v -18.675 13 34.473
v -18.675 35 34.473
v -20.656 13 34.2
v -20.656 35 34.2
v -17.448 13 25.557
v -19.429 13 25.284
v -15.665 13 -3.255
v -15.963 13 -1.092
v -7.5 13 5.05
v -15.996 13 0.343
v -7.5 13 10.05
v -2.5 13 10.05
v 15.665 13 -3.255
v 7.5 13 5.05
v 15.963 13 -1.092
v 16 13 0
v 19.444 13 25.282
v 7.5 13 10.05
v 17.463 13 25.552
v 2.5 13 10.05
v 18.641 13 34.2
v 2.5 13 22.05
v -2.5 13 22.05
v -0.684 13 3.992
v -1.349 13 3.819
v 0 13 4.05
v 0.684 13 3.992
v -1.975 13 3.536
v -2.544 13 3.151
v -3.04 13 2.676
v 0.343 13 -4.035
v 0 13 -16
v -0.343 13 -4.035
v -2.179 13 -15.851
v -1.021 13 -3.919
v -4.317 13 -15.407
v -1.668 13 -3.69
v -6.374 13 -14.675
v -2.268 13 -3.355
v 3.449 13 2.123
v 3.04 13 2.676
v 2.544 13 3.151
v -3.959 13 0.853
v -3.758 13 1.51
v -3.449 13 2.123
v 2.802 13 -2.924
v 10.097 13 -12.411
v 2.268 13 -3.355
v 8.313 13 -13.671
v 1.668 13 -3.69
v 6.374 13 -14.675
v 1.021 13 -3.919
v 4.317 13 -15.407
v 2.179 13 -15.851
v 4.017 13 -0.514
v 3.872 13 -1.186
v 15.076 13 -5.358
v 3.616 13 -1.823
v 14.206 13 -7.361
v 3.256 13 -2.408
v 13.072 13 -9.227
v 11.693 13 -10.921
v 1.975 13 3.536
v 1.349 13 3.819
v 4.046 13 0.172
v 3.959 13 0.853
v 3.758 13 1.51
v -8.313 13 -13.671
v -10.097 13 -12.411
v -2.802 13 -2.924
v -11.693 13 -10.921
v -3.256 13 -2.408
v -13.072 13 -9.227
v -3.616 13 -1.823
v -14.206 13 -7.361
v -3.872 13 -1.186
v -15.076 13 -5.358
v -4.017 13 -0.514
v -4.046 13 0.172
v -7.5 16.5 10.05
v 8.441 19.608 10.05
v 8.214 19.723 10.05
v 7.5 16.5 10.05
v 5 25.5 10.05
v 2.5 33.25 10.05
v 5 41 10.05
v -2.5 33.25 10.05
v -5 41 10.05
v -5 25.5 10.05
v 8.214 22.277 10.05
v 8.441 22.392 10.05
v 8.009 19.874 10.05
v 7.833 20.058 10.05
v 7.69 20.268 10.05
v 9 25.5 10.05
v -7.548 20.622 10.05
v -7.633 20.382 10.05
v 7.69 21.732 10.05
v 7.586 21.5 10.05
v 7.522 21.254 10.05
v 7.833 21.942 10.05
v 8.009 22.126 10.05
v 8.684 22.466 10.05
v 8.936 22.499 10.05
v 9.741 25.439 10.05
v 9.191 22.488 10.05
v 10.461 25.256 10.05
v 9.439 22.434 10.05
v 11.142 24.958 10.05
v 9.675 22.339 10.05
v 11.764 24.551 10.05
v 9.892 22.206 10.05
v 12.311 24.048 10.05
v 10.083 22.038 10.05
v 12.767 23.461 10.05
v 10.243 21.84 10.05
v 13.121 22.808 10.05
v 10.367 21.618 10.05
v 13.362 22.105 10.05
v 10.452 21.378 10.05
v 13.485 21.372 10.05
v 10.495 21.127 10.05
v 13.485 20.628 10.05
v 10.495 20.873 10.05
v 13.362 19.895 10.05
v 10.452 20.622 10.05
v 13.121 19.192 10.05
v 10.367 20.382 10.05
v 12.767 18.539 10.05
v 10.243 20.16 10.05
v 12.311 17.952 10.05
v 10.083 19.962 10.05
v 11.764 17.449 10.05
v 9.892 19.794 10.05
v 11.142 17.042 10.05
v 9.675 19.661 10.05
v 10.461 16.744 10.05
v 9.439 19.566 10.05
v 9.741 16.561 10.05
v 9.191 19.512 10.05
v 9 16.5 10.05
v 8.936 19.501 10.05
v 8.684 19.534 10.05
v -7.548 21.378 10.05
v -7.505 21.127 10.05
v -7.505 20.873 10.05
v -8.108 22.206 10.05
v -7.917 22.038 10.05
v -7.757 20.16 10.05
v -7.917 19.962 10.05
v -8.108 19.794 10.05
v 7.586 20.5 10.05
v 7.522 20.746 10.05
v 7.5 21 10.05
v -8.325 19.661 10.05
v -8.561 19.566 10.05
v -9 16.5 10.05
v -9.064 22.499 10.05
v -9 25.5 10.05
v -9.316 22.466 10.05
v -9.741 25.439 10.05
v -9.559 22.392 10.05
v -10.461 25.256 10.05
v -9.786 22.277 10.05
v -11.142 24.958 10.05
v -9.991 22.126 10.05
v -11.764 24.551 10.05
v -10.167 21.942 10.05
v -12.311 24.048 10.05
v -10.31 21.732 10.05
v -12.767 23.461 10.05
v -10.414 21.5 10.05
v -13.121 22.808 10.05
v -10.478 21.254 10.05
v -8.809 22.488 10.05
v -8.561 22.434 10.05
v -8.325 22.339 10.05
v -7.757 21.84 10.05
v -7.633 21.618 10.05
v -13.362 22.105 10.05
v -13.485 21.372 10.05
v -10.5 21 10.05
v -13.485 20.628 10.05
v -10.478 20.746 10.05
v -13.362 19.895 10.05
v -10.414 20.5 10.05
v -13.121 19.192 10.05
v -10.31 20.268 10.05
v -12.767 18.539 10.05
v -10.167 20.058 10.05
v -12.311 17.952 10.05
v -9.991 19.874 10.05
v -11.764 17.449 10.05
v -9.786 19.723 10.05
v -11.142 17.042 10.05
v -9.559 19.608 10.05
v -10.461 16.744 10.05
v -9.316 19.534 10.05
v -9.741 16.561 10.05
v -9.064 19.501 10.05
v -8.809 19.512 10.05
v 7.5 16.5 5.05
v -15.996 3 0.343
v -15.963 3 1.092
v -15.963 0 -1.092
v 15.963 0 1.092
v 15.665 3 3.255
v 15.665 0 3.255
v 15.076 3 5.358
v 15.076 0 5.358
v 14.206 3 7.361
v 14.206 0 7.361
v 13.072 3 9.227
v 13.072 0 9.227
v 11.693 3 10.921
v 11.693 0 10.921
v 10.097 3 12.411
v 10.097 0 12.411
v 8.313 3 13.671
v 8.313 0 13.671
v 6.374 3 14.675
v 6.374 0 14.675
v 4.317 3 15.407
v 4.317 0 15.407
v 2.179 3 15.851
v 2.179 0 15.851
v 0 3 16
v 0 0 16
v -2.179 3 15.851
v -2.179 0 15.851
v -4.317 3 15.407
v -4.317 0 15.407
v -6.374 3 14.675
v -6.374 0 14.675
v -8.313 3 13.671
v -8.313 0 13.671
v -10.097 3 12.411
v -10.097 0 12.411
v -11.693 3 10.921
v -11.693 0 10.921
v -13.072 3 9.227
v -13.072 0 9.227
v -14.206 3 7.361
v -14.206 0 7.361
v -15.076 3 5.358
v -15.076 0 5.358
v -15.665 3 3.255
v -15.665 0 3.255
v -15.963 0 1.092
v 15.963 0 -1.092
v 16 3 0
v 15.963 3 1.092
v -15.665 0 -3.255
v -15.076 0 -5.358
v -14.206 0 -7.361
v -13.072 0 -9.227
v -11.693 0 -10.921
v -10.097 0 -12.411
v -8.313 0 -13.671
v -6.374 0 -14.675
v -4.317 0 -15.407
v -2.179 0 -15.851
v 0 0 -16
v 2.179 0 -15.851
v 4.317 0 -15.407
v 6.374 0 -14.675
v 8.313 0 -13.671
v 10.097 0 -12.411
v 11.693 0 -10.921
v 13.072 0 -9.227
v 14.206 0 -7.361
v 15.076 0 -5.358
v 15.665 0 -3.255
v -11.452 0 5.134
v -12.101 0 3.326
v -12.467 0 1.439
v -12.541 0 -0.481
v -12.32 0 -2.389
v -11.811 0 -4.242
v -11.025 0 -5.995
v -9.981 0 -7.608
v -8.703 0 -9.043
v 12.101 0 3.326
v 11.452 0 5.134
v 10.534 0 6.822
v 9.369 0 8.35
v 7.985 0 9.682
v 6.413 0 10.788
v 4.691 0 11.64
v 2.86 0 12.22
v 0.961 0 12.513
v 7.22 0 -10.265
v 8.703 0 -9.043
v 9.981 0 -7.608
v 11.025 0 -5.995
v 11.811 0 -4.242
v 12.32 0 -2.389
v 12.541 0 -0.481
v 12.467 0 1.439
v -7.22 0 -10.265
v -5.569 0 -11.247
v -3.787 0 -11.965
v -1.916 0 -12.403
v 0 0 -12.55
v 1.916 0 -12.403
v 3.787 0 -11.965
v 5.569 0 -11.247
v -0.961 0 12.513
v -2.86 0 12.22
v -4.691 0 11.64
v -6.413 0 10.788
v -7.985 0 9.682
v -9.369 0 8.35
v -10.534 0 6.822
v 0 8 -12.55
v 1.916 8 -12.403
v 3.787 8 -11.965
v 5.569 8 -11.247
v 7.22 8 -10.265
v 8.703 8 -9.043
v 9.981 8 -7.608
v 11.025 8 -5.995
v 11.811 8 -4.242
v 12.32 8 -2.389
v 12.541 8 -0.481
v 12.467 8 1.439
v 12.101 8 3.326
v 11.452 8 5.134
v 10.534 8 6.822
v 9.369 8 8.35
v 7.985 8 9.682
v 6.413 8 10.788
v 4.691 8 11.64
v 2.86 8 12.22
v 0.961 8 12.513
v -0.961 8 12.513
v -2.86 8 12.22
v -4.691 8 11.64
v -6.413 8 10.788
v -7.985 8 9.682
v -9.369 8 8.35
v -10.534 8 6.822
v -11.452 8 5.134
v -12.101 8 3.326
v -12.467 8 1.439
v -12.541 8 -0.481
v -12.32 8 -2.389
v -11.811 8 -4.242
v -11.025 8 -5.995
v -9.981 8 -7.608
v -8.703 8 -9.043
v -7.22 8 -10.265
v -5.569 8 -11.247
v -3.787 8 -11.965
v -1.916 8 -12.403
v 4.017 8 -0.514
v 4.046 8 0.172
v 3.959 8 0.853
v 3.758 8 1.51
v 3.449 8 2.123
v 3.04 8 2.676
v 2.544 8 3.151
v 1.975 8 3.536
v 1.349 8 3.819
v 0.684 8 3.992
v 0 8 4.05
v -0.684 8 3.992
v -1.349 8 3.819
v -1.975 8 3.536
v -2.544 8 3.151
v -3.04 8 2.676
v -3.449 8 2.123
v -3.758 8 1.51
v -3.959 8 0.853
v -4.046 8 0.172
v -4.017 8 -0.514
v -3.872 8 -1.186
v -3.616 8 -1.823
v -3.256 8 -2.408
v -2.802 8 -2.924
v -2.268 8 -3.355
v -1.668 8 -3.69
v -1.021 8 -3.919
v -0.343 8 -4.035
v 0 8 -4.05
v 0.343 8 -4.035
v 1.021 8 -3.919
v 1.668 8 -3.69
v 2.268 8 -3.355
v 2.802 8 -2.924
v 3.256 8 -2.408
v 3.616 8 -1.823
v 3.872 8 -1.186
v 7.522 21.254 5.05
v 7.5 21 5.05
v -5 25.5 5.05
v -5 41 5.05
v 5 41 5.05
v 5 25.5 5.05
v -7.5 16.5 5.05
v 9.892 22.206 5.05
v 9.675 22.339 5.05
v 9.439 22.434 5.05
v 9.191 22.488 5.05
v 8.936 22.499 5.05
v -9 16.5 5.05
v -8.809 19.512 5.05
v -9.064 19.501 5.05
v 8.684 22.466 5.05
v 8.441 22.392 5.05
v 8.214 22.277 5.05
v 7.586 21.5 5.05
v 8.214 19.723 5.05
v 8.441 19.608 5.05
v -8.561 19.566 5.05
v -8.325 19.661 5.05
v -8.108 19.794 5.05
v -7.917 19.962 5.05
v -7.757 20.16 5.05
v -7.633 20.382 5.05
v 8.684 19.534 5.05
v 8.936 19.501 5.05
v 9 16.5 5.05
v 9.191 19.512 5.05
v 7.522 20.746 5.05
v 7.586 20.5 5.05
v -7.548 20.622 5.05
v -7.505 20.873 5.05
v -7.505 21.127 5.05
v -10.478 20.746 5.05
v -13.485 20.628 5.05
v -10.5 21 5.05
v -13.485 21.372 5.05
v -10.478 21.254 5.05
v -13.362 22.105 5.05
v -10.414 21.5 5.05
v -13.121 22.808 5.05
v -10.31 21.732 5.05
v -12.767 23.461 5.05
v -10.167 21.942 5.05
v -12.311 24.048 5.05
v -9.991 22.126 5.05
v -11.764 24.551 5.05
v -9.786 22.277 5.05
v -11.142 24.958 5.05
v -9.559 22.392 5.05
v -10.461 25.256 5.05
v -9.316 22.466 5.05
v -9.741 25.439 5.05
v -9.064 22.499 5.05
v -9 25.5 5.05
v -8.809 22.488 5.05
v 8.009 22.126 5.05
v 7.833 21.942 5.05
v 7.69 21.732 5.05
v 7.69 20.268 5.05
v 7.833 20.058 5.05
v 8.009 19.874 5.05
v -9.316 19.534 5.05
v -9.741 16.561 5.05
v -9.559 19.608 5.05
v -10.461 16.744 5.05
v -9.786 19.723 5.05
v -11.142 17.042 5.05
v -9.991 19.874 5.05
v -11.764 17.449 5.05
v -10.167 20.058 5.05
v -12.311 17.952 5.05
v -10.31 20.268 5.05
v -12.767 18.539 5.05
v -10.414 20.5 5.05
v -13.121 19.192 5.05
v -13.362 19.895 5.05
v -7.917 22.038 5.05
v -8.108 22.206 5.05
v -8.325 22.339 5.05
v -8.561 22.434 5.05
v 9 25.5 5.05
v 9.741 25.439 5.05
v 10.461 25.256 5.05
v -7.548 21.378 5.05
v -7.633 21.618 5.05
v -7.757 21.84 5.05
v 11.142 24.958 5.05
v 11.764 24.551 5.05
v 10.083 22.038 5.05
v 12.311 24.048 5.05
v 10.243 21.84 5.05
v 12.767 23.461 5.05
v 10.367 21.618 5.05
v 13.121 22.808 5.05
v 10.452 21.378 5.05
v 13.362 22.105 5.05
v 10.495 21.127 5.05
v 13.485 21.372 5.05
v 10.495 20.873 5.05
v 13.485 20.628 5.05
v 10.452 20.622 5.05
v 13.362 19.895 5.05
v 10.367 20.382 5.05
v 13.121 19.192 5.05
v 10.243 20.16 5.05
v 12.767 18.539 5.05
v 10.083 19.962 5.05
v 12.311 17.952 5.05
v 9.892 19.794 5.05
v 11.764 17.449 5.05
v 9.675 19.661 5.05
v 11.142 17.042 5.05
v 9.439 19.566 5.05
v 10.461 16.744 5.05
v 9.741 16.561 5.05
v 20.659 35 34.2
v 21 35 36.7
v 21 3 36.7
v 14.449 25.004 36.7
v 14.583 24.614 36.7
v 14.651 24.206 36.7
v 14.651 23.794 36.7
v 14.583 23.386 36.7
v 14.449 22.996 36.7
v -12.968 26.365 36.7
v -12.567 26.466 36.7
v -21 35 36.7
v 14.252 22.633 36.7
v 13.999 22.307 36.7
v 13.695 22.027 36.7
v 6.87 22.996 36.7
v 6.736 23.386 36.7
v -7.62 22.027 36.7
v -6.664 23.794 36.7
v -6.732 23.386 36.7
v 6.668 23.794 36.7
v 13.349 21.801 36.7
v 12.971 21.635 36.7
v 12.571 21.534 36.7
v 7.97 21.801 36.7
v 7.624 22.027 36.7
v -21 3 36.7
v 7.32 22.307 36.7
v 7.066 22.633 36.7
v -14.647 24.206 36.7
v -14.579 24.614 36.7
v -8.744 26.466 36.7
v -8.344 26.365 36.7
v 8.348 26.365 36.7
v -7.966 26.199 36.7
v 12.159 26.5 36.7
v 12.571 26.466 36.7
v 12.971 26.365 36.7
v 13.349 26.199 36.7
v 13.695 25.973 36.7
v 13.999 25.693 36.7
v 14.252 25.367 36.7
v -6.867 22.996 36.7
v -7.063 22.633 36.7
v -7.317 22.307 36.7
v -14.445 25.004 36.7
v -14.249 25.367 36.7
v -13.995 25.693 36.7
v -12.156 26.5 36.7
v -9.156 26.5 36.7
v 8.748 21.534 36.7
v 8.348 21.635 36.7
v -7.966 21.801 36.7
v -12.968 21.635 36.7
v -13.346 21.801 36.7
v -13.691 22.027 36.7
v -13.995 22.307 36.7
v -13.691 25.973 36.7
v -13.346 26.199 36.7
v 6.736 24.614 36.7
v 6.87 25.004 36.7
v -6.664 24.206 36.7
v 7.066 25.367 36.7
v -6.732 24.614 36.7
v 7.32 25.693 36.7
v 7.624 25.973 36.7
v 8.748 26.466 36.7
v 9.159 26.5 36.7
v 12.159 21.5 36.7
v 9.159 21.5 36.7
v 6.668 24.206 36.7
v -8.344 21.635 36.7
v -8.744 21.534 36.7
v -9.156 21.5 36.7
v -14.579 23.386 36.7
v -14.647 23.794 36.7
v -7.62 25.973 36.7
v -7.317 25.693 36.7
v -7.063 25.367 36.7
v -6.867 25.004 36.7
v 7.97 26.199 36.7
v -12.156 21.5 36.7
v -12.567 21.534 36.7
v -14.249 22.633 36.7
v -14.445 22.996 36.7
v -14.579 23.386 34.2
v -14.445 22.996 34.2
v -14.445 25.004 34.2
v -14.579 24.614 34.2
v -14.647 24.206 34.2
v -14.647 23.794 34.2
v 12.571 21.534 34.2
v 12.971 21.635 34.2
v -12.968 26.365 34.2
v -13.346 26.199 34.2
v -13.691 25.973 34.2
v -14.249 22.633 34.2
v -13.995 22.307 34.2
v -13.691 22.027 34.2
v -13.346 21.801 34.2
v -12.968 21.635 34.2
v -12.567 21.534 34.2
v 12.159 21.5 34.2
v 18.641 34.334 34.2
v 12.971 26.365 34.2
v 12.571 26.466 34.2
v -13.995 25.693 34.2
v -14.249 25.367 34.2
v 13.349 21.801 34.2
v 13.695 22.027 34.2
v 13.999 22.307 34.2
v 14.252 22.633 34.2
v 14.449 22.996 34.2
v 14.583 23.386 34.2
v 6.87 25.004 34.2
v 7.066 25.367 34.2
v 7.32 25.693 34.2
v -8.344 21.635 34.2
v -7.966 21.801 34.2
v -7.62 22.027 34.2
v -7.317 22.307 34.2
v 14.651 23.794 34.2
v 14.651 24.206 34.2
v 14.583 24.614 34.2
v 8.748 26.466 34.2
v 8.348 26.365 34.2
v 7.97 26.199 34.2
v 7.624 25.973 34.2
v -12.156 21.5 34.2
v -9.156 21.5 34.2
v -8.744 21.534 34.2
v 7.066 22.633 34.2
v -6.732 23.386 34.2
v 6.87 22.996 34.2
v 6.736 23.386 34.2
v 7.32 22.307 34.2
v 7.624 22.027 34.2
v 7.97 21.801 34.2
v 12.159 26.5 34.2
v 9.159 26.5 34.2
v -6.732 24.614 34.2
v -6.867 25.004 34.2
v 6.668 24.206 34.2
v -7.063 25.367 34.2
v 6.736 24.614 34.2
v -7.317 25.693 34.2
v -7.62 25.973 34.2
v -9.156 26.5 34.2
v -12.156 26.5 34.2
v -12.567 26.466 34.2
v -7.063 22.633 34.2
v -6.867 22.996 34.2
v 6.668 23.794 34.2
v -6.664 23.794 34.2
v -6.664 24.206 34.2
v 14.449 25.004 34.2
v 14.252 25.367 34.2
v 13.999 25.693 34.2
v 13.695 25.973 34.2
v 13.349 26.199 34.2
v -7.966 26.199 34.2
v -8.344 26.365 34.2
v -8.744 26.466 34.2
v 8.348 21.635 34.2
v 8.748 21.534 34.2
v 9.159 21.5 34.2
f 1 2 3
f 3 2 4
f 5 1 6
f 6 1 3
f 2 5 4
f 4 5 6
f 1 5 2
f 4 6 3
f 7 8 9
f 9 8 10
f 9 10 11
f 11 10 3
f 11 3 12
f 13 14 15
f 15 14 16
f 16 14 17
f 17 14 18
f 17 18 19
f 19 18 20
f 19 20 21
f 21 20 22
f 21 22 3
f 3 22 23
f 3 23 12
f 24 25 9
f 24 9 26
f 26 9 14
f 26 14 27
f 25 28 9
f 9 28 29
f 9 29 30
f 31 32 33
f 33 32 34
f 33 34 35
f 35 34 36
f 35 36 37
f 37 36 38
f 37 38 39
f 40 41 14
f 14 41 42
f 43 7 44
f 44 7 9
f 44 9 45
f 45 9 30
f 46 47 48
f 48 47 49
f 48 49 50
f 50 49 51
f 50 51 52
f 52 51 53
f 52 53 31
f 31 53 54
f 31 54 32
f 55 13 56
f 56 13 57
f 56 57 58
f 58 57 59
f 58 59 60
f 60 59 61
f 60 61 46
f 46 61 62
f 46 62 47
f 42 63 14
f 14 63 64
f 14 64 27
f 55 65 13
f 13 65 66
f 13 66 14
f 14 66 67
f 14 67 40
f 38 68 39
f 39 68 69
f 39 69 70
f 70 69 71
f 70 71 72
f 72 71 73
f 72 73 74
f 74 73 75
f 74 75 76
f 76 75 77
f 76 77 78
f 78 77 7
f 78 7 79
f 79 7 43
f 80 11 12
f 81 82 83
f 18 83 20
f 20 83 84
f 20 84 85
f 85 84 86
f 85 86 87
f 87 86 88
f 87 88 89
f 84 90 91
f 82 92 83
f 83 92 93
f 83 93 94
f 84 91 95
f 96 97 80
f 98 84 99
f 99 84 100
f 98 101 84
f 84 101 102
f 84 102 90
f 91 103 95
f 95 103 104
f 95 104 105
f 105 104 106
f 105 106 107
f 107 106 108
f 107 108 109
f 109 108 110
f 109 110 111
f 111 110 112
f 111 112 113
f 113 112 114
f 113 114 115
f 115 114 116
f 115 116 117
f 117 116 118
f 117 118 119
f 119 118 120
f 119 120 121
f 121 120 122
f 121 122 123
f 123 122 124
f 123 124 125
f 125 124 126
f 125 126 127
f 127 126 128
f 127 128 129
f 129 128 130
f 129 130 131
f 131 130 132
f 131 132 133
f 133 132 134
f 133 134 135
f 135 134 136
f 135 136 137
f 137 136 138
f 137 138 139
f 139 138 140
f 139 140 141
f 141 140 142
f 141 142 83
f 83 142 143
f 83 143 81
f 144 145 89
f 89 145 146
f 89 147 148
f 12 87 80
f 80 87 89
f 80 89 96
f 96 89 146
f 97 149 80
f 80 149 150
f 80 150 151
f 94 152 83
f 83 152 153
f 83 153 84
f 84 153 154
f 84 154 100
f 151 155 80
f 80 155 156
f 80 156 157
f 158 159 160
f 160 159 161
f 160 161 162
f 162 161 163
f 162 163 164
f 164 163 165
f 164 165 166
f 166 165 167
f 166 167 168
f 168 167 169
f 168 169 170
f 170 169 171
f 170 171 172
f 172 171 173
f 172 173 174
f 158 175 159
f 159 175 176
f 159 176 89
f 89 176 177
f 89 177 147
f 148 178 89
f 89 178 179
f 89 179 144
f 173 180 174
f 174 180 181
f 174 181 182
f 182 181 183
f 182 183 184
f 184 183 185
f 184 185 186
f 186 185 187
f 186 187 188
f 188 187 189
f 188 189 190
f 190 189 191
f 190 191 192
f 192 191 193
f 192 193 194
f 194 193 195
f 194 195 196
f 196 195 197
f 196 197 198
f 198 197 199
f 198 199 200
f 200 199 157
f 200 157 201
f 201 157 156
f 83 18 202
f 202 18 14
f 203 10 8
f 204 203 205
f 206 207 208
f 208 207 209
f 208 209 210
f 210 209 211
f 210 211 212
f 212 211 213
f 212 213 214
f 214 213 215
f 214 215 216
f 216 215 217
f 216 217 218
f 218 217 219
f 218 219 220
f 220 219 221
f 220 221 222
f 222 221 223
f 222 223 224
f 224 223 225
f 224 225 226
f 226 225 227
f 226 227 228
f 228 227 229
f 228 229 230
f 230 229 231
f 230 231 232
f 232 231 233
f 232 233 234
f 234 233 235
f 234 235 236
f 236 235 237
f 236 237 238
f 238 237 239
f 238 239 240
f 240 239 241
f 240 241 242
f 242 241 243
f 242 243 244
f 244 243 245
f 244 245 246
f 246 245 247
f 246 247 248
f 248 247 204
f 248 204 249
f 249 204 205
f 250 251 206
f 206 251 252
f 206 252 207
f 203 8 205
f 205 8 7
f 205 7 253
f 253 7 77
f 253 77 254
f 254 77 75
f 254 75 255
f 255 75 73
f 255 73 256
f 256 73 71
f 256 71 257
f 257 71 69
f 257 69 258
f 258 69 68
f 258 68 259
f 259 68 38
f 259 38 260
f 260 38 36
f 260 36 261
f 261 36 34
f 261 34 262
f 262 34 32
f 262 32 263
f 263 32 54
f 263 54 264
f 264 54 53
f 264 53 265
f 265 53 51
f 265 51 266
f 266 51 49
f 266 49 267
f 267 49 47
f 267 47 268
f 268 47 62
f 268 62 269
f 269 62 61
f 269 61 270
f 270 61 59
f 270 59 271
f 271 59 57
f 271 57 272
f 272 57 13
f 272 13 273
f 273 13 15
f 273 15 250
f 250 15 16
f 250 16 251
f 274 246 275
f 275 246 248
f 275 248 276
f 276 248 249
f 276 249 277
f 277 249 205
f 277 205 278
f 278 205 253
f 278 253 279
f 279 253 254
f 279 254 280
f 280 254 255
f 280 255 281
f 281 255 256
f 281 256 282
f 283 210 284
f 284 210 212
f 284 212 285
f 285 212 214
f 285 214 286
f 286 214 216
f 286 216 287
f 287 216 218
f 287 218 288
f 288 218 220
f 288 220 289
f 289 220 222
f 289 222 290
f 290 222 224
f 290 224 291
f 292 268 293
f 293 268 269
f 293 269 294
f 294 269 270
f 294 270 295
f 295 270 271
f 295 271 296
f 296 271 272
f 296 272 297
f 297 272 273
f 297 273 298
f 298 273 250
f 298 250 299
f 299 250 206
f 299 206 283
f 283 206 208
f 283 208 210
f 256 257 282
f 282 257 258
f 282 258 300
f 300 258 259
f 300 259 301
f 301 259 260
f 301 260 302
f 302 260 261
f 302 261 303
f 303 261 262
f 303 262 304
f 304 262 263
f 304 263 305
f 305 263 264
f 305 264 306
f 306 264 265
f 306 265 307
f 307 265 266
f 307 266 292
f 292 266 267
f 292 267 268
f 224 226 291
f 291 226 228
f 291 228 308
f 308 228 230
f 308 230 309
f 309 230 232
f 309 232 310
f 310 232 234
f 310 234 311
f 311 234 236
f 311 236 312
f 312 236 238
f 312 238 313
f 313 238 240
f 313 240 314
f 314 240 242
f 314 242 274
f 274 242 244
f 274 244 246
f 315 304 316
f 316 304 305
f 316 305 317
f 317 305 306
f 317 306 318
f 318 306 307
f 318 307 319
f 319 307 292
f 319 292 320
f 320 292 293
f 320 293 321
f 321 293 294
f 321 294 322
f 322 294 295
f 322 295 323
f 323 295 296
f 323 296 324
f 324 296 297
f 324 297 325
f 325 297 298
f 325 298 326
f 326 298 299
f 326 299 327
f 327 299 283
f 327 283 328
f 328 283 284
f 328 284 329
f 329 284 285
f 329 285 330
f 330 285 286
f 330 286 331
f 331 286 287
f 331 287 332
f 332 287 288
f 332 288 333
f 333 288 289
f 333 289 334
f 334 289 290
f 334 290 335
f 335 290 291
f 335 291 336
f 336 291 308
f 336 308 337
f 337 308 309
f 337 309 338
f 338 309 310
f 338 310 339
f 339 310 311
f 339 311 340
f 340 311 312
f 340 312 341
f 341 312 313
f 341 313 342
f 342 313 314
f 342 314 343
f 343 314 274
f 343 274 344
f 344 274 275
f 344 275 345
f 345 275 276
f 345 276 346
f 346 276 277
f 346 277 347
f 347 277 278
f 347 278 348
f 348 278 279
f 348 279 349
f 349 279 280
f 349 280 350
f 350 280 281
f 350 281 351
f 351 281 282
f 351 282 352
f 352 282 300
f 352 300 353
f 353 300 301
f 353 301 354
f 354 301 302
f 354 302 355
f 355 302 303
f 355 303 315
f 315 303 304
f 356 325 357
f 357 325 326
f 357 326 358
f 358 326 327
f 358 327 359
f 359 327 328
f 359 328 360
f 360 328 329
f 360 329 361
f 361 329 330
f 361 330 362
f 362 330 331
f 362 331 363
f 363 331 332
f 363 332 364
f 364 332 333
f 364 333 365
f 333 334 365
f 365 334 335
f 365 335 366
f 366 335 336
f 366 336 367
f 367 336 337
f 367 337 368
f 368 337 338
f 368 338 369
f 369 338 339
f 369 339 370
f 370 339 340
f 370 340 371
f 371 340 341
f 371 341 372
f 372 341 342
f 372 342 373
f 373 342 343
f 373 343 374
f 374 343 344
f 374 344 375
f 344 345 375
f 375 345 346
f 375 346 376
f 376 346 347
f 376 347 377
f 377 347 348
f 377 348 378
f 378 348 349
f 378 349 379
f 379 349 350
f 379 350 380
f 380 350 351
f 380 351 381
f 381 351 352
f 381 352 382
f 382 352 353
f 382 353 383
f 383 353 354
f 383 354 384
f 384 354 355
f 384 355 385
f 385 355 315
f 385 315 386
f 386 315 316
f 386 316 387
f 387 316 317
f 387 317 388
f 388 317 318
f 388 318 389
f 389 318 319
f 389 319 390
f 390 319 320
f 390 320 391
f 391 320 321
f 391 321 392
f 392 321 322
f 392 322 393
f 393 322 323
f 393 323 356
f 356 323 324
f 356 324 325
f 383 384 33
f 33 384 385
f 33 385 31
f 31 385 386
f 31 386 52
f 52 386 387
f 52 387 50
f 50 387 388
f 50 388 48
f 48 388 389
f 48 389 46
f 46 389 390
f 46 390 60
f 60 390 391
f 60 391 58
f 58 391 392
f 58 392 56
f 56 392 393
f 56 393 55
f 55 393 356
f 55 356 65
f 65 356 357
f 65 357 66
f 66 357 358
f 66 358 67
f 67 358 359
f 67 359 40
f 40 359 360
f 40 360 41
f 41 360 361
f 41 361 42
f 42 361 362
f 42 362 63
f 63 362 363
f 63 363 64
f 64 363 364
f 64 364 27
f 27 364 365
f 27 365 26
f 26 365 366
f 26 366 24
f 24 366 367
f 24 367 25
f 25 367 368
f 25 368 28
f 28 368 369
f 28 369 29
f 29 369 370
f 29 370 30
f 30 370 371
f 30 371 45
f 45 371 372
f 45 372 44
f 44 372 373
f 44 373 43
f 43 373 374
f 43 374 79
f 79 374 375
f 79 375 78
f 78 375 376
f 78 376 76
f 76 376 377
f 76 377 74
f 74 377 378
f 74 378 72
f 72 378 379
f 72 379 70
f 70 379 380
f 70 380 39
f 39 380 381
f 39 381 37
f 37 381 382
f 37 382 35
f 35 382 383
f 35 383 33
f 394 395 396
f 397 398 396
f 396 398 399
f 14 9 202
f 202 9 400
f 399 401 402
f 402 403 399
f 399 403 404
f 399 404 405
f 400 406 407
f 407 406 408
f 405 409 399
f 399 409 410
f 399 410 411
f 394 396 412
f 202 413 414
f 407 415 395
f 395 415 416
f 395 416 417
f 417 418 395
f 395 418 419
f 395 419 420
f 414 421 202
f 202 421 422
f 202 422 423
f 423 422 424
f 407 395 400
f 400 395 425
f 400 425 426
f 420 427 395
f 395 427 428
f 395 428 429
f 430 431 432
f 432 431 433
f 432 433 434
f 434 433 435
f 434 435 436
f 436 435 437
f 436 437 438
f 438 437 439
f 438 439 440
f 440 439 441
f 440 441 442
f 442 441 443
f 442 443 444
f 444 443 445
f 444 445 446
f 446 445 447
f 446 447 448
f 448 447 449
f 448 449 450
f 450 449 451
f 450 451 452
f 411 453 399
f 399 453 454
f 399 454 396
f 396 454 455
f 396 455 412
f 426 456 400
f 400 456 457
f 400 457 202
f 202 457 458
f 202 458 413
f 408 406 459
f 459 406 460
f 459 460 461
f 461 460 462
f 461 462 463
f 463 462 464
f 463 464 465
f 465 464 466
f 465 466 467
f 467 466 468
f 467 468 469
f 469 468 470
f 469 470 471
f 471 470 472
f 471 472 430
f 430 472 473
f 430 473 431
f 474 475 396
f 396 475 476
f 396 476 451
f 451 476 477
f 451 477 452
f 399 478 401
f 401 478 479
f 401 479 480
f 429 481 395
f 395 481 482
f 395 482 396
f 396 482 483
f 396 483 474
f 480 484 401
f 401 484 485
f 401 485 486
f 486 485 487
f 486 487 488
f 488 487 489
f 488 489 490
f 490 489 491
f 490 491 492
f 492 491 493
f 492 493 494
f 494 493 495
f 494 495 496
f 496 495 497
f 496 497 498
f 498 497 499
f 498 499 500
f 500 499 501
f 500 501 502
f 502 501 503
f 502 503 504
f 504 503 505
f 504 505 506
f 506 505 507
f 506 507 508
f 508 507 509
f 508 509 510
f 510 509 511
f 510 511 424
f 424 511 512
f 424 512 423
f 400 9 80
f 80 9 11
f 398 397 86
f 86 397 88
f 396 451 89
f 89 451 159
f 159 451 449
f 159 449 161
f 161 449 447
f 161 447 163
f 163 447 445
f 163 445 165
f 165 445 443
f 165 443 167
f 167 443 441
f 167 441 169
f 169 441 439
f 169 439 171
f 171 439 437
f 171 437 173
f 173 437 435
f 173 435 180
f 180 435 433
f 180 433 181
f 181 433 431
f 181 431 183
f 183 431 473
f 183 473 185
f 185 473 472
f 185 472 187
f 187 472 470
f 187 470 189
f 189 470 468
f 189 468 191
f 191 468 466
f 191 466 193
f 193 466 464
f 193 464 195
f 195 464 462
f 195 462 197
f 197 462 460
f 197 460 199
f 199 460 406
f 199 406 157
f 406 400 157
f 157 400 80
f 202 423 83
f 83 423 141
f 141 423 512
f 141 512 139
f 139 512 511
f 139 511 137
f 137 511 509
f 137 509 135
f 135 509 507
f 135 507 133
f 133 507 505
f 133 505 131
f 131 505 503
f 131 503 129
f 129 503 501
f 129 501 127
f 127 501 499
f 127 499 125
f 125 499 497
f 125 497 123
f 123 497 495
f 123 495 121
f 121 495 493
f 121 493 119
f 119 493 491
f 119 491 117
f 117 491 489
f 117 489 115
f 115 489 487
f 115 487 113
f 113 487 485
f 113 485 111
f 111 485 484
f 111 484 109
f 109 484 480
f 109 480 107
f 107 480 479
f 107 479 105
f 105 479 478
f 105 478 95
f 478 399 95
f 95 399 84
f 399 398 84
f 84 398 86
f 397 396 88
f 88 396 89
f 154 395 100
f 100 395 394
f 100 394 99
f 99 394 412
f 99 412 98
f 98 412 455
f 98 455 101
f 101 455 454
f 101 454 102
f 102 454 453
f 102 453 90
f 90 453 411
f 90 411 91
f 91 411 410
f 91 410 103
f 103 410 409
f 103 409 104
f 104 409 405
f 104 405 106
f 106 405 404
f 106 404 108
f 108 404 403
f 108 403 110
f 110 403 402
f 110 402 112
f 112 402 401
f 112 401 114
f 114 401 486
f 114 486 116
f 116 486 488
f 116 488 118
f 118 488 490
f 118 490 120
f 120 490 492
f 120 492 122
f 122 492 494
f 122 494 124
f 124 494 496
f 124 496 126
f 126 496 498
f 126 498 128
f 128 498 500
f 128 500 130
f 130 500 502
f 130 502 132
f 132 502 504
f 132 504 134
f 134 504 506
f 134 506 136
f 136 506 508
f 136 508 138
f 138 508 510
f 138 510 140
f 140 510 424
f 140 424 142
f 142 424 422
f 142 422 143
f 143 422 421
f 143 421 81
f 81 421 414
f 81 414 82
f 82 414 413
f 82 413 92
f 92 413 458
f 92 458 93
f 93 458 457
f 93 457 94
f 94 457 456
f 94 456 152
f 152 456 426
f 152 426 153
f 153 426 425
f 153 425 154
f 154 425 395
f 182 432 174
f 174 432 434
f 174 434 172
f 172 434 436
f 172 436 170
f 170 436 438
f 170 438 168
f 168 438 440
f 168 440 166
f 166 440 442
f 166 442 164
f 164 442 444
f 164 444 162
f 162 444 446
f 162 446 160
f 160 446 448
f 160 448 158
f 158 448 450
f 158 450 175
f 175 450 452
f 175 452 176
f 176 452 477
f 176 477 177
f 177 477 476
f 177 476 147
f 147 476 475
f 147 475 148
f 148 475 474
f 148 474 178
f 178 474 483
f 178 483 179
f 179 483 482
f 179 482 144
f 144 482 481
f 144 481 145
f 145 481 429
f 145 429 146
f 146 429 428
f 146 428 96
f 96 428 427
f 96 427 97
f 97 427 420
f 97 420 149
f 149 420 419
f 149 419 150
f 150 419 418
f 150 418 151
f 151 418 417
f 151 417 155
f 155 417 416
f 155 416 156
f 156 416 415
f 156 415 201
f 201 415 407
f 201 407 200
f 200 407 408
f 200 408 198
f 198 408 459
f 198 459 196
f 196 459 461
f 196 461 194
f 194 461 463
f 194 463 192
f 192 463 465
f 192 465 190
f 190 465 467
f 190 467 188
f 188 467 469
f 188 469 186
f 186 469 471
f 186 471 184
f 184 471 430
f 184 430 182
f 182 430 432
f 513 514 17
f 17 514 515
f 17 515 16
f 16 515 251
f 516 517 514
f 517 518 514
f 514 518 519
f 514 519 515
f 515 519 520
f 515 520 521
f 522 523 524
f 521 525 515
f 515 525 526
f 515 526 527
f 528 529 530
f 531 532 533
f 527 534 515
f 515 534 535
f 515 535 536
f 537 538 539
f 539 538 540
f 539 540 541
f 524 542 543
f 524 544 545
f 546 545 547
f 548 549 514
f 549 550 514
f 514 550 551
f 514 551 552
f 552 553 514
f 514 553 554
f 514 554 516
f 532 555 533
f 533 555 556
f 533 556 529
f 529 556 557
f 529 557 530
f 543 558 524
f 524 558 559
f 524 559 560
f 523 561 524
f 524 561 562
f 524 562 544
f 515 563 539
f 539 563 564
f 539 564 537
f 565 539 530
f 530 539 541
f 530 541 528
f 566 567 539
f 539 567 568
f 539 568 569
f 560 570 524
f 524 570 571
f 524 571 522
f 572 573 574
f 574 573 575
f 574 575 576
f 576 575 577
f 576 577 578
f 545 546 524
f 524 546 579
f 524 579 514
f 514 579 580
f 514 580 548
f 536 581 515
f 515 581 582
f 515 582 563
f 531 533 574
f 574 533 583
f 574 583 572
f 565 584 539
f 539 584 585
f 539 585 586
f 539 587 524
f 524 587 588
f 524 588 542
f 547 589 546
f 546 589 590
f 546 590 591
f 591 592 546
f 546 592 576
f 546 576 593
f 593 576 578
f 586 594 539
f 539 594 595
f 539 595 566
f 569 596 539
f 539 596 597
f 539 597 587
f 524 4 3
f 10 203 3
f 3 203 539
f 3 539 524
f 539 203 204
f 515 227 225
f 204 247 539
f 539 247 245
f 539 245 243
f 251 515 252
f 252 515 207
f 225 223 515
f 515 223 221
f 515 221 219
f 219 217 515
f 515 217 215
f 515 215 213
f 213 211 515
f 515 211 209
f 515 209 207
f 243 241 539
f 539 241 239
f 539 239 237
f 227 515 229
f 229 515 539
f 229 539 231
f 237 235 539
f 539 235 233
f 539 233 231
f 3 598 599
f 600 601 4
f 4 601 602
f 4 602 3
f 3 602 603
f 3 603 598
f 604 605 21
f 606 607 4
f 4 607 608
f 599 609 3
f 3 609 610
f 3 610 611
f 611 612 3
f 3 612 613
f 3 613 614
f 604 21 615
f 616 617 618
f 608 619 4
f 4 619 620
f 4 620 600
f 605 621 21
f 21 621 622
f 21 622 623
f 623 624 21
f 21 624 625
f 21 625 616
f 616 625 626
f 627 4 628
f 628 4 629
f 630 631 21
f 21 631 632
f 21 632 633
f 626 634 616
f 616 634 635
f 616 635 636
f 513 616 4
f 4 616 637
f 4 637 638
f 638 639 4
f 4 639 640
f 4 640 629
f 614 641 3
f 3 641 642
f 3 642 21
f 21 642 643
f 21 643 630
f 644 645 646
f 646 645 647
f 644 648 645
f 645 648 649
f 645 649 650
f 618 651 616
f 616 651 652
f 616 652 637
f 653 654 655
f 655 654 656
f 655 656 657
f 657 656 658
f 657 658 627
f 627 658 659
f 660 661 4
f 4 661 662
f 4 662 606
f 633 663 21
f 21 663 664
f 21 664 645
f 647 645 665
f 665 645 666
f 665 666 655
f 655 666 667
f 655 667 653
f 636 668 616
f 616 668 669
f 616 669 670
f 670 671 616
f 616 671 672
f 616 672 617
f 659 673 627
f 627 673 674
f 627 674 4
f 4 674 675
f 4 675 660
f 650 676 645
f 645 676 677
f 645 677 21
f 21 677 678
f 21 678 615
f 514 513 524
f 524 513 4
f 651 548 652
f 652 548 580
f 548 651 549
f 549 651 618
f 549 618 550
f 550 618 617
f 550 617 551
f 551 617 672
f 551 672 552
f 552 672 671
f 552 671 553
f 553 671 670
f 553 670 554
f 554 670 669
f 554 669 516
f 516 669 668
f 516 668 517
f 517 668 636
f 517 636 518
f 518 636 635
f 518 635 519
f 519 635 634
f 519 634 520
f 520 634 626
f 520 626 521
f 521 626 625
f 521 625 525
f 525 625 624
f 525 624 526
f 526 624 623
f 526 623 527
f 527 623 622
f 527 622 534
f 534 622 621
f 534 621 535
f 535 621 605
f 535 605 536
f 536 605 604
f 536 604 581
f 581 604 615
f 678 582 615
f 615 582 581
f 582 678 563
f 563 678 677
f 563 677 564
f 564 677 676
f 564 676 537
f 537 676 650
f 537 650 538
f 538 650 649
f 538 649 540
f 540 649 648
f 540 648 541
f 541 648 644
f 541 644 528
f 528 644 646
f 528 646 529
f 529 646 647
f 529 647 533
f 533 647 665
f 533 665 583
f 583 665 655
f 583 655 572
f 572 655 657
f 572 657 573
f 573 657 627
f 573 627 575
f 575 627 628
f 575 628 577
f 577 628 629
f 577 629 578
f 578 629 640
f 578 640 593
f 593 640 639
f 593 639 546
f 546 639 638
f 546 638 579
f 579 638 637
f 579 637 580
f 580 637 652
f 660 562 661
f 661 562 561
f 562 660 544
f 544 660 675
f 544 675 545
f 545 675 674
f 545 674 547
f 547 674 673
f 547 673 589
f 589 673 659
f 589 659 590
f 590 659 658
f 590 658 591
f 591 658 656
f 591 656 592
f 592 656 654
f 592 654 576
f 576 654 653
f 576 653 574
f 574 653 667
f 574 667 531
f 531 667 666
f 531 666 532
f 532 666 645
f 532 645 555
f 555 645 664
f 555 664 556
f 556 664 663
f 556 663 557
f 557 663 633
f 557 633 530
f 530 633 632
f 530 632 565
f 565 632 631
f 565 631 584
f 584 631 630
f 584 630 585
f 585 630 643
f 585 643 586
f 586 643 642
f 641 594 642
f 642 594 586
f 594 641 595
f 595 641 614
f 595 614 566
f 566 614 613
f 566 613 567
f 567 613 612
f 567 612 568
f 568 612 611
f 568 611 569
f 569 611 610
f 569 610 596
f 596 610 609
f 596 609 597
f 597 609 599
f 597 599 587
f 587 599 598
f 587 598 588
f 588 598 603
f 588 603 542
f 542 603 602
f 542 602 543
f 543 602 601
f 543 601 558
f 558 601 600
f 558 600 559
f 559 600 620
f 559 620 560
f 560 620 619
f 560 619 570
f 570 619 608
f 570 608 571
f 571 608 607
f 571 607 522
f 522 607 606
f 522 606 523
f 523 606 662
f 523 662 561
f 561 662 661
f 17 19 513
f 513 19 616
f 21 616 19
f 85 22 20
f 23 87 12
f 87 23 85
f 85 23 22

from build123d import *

# Parameters (mm, degrees)
SKETCH1_R            = 16
BOSS_EXTRUDE1_DEPTH  = 13
SKETCH2_R            = 12.55
CUT_EXTRUDE1_DEPTH   = 8
SKETCH3_R            = 4.05
CUT_EXTRUDE2_DEPTH   = 5
SKETCH4_W            = 15
SKETCH4_H            = 5
BOSS_EXTRUDE2_DEPTH  = 28
BOSS_EXTRUDE5_DEPTH  = 5
SKETCH7_R            = 1.5
SKETCH7_W            = 2.5
SKETCH7_H            = 15.5
CUT_EXTRUDE3_DEPTH   = 5
BOSS_EXTRUDE6_DEPTH  = 10
BOSS_EXTRUDE7_DEPTH  = 22
CUT_EXTRUDE5_DEPTH   = 2.5
BOSS_EXTRUDE8_DEPTH  = 2
BOSS_EXTRUDE9_DEPTH  = 2
SKETCH14_W           = 5
SKETCH14_H           = 20.25
BOSS_EXTRUDE10_DEPTH = 12
CUT_EXTRUDE6_DEPTH   = 5


with BuildPart() as part:
    # Sketch1 → Boss-Extrude1 (new body)
    with BuildSketch(Plane(origin=(0, 0, 0), x_dir=(1, 0, 0), z_dir=(0, 1, 0))):
        Circle(SKETCH1_R)
    extrude(amount=BOSS_EXTRUDE1_DEPTH)

    # Sketch2 → Cut-Extrude1 (cut)
    with BuildSketch(Plane.XZ):
        Circle(SKETCH2_R)
    extrude(amount=-CUT_EXTRUDE1_DEPTH, mode=Mode.SUBTRACT)

    # Sketch3 → Cut-Extrude2 (cut)
    with BuildSketch(Plane(origin=(0, 13, 0), x_dir=(1, 0, 0), z_dir=(0, 1, 0))):
        Circle(SKETCH3_R)
    extrude(amount=-CUT_EXTRUDE2_DEPTH, mode=Mode.SUBTRACT)

    # Sketch4 → Boss-Extrude2 (add)
    with BuildSketch(Plane(origin=(0, 13, 0), x_dir=(1, 0, 0), z_dir=(0, 1, 0))):
        with Locations((0, -7.55)):
            Rectangle(SKETCH4_W, SKETCH4_H)
    extrude(amount=BOSS_EXTRUDE2_DEPTH)

    # Sketch6 → Boss-Extrude5 (add)
    with BuildSketch(Plane(origin=(0, 0, 5.05), x_dir=(-1, 0, 0), z_dir=(0, 0, -1))):
        with BuildLine():
            Line((7.5, 16.5), (9, 16.5))
            ThreePointArc((9, 16.5), (13.5, 21), (9, 25.5))
            Line((9, 25.5), (7.5, 25.5))
            Line((7.5, 25.5), (7.5, 16.5))
        make_face()
        with BuildLine():
            Line((-7.5, 16.5), (-9, 16.5))
            ThreePointArc((-9, 16.5), (-13.5, 21), (-9, 25.5))
            Line((-9, 25.5), (-7.5, 25.5))
            Line((-7.5, 25.5), (-7.5, 16.5))
        make_face()
    extrude(amount=-BOSS_EXTRUDE5_DEPTH)

    # Sketch7 → Cut-Extrude3 (cut)
    with BuildSketch(Plane(origin=(0, 0, 5.05), x_dir=(-1, 0, 0), z_dir=(0, 0, -1))):
        with Locations((-9, 21)):
            Circle(SKETCH7_R)
        with Locations((9, 21)):
            Circle(SKETCH7_R)
        with Locations((6.25, 33.25)):
            Rectangle(SKETCH7_W, SKETCH7_H)
        with Locations((-6.25, 33.25)):
            Rectangle(SKETCH7_W, SKETCH7_H)
    extrude(amount=-CUT_EXTRUDE3_DEPTH, mode=Mode.SUBTRACT)

    # Sketch8 → Boss-Extrude6 (add)
    with BuildSketch(Plane(origin=(0, 13, 0), x_dir=(1, 0, 0), z_dir=(0, 1, 0))):
        with BuildLine():
            Line((-21, -36.7), (21, -36.7))
            Line((21, -36.7), (16, 0))
            ThreePointArc((16, 0), (0.171359704, -15.999082344), (-15.996329481, -0.342699752))
            Line((-15.996329481, -0.342699752), (-21, -36.7))
        make_face()
    extrude(amount=-BOSS_EXTRUDE6_DEPTH)

    # Sketch9 → Boss-Extrude7 (add)
    with BuildSketch(Plane(origin=(0, 13, 0), x_dir=(1, 0, 0), z_dir=(0, 1, 0))):
        Polygon((-21, -36.7), (21, -36.7), (20.659400545, -34.2), (-20.655937701, -34.2), align=None)
    extrude(amount=BOSS_EXTRUDE7_DEPTH)

    # Sketch11 → Cut-Extrude5 (cut)
    with BuildSketch(Plane(origin=(0, 0, 34.2), x_dir=(-1, 0, 0), z_dir=(0, 0, -1))):
        with BuildLine():
            Line((12.155937701, 21.5), (9.155937701, 21.5))
            ThreePointArc((9.155937701, 21.5), (6.655937701, 24), (9.155937701, 26.5))
            Line((9.155937701, 26.5), (12.155937701, 26.5))
            ThreePointArc((12.155937701, 26.5), (14.655937701, 24), (12.155937701, 21.5))
        make_face()
        with BuildLine():
            Line((-9.159400545, 21.5), (-12.159400545, 21.5))
            ThreePointArc((-12.159400545, 21.5), (-14.659400545, 24), (-12.159400545, 26.5))
            Line((-12.159400545, 26.5), (-9.159400545, 26.5))
            ThreePointArc((-9.159400545, 26.5), (-6.659400545, 24), (-9.159400545, 21.5))
        make_face()
    extrude(amount=-CUT_EXTRUDE5_DEPTH, mode=Mode.SUBTRACT)

    # Sketch13 → Boss-Extrude9 (add)
    with BuildSketch(Plane(origin=(15.708431434, 0, -2.140113274), x_dir=(-0.134992723, 0, -0.99084659), z_dir=(0.99084659, 0, -0.134992723))):
        Polygon((-36.675822117, 13), (-27.675822117, 13), (-36.675822117, 35), align=None)
    extrude(amount=-BOSS_EXTRUDE9_DEPTH)

    # Sketch14 → Boss-Extrude10 (add)
    with BuildSketch(Plane.XY.offset(10.05)):
        with Locations((0, 23.125)):
            Rectangle(SKETCH14_W, SKETCH14_H)
    extrude(amount=BOSS_EXTRUDE10_DEPTH)

    # Sketch15 → Cut-Extrude6 (cut)
    with BuildSketch(Plane.ZY.offset(2.5)):
        Polygon((10.05, 33.25), (22.05, 13), (22.05, 33.25), align=None)
    extrude(amount=-CUT_EXTRUDE6_DEPTH, mode=Mode.SUBTRACT)


with BuildPart() as body_2:
    # Sketch12 → Boss-Extrude8 (new body)
    with BuildSketch(Plane(origin=(-15.652693756, 0, -2.154200717), x_dir=(-0.136339796, 0, 0.990662132), z_dir=(-0.990662132, 0, -0.136339796))):
        Polygon((36.696871253, 13), (27.696871253, 13), (36.696871253, 35), align=None)
    extrude(amount=-BOSS_EXTRUDE8_DEPTH)


solid = Compound([part.part, body_2.part])
